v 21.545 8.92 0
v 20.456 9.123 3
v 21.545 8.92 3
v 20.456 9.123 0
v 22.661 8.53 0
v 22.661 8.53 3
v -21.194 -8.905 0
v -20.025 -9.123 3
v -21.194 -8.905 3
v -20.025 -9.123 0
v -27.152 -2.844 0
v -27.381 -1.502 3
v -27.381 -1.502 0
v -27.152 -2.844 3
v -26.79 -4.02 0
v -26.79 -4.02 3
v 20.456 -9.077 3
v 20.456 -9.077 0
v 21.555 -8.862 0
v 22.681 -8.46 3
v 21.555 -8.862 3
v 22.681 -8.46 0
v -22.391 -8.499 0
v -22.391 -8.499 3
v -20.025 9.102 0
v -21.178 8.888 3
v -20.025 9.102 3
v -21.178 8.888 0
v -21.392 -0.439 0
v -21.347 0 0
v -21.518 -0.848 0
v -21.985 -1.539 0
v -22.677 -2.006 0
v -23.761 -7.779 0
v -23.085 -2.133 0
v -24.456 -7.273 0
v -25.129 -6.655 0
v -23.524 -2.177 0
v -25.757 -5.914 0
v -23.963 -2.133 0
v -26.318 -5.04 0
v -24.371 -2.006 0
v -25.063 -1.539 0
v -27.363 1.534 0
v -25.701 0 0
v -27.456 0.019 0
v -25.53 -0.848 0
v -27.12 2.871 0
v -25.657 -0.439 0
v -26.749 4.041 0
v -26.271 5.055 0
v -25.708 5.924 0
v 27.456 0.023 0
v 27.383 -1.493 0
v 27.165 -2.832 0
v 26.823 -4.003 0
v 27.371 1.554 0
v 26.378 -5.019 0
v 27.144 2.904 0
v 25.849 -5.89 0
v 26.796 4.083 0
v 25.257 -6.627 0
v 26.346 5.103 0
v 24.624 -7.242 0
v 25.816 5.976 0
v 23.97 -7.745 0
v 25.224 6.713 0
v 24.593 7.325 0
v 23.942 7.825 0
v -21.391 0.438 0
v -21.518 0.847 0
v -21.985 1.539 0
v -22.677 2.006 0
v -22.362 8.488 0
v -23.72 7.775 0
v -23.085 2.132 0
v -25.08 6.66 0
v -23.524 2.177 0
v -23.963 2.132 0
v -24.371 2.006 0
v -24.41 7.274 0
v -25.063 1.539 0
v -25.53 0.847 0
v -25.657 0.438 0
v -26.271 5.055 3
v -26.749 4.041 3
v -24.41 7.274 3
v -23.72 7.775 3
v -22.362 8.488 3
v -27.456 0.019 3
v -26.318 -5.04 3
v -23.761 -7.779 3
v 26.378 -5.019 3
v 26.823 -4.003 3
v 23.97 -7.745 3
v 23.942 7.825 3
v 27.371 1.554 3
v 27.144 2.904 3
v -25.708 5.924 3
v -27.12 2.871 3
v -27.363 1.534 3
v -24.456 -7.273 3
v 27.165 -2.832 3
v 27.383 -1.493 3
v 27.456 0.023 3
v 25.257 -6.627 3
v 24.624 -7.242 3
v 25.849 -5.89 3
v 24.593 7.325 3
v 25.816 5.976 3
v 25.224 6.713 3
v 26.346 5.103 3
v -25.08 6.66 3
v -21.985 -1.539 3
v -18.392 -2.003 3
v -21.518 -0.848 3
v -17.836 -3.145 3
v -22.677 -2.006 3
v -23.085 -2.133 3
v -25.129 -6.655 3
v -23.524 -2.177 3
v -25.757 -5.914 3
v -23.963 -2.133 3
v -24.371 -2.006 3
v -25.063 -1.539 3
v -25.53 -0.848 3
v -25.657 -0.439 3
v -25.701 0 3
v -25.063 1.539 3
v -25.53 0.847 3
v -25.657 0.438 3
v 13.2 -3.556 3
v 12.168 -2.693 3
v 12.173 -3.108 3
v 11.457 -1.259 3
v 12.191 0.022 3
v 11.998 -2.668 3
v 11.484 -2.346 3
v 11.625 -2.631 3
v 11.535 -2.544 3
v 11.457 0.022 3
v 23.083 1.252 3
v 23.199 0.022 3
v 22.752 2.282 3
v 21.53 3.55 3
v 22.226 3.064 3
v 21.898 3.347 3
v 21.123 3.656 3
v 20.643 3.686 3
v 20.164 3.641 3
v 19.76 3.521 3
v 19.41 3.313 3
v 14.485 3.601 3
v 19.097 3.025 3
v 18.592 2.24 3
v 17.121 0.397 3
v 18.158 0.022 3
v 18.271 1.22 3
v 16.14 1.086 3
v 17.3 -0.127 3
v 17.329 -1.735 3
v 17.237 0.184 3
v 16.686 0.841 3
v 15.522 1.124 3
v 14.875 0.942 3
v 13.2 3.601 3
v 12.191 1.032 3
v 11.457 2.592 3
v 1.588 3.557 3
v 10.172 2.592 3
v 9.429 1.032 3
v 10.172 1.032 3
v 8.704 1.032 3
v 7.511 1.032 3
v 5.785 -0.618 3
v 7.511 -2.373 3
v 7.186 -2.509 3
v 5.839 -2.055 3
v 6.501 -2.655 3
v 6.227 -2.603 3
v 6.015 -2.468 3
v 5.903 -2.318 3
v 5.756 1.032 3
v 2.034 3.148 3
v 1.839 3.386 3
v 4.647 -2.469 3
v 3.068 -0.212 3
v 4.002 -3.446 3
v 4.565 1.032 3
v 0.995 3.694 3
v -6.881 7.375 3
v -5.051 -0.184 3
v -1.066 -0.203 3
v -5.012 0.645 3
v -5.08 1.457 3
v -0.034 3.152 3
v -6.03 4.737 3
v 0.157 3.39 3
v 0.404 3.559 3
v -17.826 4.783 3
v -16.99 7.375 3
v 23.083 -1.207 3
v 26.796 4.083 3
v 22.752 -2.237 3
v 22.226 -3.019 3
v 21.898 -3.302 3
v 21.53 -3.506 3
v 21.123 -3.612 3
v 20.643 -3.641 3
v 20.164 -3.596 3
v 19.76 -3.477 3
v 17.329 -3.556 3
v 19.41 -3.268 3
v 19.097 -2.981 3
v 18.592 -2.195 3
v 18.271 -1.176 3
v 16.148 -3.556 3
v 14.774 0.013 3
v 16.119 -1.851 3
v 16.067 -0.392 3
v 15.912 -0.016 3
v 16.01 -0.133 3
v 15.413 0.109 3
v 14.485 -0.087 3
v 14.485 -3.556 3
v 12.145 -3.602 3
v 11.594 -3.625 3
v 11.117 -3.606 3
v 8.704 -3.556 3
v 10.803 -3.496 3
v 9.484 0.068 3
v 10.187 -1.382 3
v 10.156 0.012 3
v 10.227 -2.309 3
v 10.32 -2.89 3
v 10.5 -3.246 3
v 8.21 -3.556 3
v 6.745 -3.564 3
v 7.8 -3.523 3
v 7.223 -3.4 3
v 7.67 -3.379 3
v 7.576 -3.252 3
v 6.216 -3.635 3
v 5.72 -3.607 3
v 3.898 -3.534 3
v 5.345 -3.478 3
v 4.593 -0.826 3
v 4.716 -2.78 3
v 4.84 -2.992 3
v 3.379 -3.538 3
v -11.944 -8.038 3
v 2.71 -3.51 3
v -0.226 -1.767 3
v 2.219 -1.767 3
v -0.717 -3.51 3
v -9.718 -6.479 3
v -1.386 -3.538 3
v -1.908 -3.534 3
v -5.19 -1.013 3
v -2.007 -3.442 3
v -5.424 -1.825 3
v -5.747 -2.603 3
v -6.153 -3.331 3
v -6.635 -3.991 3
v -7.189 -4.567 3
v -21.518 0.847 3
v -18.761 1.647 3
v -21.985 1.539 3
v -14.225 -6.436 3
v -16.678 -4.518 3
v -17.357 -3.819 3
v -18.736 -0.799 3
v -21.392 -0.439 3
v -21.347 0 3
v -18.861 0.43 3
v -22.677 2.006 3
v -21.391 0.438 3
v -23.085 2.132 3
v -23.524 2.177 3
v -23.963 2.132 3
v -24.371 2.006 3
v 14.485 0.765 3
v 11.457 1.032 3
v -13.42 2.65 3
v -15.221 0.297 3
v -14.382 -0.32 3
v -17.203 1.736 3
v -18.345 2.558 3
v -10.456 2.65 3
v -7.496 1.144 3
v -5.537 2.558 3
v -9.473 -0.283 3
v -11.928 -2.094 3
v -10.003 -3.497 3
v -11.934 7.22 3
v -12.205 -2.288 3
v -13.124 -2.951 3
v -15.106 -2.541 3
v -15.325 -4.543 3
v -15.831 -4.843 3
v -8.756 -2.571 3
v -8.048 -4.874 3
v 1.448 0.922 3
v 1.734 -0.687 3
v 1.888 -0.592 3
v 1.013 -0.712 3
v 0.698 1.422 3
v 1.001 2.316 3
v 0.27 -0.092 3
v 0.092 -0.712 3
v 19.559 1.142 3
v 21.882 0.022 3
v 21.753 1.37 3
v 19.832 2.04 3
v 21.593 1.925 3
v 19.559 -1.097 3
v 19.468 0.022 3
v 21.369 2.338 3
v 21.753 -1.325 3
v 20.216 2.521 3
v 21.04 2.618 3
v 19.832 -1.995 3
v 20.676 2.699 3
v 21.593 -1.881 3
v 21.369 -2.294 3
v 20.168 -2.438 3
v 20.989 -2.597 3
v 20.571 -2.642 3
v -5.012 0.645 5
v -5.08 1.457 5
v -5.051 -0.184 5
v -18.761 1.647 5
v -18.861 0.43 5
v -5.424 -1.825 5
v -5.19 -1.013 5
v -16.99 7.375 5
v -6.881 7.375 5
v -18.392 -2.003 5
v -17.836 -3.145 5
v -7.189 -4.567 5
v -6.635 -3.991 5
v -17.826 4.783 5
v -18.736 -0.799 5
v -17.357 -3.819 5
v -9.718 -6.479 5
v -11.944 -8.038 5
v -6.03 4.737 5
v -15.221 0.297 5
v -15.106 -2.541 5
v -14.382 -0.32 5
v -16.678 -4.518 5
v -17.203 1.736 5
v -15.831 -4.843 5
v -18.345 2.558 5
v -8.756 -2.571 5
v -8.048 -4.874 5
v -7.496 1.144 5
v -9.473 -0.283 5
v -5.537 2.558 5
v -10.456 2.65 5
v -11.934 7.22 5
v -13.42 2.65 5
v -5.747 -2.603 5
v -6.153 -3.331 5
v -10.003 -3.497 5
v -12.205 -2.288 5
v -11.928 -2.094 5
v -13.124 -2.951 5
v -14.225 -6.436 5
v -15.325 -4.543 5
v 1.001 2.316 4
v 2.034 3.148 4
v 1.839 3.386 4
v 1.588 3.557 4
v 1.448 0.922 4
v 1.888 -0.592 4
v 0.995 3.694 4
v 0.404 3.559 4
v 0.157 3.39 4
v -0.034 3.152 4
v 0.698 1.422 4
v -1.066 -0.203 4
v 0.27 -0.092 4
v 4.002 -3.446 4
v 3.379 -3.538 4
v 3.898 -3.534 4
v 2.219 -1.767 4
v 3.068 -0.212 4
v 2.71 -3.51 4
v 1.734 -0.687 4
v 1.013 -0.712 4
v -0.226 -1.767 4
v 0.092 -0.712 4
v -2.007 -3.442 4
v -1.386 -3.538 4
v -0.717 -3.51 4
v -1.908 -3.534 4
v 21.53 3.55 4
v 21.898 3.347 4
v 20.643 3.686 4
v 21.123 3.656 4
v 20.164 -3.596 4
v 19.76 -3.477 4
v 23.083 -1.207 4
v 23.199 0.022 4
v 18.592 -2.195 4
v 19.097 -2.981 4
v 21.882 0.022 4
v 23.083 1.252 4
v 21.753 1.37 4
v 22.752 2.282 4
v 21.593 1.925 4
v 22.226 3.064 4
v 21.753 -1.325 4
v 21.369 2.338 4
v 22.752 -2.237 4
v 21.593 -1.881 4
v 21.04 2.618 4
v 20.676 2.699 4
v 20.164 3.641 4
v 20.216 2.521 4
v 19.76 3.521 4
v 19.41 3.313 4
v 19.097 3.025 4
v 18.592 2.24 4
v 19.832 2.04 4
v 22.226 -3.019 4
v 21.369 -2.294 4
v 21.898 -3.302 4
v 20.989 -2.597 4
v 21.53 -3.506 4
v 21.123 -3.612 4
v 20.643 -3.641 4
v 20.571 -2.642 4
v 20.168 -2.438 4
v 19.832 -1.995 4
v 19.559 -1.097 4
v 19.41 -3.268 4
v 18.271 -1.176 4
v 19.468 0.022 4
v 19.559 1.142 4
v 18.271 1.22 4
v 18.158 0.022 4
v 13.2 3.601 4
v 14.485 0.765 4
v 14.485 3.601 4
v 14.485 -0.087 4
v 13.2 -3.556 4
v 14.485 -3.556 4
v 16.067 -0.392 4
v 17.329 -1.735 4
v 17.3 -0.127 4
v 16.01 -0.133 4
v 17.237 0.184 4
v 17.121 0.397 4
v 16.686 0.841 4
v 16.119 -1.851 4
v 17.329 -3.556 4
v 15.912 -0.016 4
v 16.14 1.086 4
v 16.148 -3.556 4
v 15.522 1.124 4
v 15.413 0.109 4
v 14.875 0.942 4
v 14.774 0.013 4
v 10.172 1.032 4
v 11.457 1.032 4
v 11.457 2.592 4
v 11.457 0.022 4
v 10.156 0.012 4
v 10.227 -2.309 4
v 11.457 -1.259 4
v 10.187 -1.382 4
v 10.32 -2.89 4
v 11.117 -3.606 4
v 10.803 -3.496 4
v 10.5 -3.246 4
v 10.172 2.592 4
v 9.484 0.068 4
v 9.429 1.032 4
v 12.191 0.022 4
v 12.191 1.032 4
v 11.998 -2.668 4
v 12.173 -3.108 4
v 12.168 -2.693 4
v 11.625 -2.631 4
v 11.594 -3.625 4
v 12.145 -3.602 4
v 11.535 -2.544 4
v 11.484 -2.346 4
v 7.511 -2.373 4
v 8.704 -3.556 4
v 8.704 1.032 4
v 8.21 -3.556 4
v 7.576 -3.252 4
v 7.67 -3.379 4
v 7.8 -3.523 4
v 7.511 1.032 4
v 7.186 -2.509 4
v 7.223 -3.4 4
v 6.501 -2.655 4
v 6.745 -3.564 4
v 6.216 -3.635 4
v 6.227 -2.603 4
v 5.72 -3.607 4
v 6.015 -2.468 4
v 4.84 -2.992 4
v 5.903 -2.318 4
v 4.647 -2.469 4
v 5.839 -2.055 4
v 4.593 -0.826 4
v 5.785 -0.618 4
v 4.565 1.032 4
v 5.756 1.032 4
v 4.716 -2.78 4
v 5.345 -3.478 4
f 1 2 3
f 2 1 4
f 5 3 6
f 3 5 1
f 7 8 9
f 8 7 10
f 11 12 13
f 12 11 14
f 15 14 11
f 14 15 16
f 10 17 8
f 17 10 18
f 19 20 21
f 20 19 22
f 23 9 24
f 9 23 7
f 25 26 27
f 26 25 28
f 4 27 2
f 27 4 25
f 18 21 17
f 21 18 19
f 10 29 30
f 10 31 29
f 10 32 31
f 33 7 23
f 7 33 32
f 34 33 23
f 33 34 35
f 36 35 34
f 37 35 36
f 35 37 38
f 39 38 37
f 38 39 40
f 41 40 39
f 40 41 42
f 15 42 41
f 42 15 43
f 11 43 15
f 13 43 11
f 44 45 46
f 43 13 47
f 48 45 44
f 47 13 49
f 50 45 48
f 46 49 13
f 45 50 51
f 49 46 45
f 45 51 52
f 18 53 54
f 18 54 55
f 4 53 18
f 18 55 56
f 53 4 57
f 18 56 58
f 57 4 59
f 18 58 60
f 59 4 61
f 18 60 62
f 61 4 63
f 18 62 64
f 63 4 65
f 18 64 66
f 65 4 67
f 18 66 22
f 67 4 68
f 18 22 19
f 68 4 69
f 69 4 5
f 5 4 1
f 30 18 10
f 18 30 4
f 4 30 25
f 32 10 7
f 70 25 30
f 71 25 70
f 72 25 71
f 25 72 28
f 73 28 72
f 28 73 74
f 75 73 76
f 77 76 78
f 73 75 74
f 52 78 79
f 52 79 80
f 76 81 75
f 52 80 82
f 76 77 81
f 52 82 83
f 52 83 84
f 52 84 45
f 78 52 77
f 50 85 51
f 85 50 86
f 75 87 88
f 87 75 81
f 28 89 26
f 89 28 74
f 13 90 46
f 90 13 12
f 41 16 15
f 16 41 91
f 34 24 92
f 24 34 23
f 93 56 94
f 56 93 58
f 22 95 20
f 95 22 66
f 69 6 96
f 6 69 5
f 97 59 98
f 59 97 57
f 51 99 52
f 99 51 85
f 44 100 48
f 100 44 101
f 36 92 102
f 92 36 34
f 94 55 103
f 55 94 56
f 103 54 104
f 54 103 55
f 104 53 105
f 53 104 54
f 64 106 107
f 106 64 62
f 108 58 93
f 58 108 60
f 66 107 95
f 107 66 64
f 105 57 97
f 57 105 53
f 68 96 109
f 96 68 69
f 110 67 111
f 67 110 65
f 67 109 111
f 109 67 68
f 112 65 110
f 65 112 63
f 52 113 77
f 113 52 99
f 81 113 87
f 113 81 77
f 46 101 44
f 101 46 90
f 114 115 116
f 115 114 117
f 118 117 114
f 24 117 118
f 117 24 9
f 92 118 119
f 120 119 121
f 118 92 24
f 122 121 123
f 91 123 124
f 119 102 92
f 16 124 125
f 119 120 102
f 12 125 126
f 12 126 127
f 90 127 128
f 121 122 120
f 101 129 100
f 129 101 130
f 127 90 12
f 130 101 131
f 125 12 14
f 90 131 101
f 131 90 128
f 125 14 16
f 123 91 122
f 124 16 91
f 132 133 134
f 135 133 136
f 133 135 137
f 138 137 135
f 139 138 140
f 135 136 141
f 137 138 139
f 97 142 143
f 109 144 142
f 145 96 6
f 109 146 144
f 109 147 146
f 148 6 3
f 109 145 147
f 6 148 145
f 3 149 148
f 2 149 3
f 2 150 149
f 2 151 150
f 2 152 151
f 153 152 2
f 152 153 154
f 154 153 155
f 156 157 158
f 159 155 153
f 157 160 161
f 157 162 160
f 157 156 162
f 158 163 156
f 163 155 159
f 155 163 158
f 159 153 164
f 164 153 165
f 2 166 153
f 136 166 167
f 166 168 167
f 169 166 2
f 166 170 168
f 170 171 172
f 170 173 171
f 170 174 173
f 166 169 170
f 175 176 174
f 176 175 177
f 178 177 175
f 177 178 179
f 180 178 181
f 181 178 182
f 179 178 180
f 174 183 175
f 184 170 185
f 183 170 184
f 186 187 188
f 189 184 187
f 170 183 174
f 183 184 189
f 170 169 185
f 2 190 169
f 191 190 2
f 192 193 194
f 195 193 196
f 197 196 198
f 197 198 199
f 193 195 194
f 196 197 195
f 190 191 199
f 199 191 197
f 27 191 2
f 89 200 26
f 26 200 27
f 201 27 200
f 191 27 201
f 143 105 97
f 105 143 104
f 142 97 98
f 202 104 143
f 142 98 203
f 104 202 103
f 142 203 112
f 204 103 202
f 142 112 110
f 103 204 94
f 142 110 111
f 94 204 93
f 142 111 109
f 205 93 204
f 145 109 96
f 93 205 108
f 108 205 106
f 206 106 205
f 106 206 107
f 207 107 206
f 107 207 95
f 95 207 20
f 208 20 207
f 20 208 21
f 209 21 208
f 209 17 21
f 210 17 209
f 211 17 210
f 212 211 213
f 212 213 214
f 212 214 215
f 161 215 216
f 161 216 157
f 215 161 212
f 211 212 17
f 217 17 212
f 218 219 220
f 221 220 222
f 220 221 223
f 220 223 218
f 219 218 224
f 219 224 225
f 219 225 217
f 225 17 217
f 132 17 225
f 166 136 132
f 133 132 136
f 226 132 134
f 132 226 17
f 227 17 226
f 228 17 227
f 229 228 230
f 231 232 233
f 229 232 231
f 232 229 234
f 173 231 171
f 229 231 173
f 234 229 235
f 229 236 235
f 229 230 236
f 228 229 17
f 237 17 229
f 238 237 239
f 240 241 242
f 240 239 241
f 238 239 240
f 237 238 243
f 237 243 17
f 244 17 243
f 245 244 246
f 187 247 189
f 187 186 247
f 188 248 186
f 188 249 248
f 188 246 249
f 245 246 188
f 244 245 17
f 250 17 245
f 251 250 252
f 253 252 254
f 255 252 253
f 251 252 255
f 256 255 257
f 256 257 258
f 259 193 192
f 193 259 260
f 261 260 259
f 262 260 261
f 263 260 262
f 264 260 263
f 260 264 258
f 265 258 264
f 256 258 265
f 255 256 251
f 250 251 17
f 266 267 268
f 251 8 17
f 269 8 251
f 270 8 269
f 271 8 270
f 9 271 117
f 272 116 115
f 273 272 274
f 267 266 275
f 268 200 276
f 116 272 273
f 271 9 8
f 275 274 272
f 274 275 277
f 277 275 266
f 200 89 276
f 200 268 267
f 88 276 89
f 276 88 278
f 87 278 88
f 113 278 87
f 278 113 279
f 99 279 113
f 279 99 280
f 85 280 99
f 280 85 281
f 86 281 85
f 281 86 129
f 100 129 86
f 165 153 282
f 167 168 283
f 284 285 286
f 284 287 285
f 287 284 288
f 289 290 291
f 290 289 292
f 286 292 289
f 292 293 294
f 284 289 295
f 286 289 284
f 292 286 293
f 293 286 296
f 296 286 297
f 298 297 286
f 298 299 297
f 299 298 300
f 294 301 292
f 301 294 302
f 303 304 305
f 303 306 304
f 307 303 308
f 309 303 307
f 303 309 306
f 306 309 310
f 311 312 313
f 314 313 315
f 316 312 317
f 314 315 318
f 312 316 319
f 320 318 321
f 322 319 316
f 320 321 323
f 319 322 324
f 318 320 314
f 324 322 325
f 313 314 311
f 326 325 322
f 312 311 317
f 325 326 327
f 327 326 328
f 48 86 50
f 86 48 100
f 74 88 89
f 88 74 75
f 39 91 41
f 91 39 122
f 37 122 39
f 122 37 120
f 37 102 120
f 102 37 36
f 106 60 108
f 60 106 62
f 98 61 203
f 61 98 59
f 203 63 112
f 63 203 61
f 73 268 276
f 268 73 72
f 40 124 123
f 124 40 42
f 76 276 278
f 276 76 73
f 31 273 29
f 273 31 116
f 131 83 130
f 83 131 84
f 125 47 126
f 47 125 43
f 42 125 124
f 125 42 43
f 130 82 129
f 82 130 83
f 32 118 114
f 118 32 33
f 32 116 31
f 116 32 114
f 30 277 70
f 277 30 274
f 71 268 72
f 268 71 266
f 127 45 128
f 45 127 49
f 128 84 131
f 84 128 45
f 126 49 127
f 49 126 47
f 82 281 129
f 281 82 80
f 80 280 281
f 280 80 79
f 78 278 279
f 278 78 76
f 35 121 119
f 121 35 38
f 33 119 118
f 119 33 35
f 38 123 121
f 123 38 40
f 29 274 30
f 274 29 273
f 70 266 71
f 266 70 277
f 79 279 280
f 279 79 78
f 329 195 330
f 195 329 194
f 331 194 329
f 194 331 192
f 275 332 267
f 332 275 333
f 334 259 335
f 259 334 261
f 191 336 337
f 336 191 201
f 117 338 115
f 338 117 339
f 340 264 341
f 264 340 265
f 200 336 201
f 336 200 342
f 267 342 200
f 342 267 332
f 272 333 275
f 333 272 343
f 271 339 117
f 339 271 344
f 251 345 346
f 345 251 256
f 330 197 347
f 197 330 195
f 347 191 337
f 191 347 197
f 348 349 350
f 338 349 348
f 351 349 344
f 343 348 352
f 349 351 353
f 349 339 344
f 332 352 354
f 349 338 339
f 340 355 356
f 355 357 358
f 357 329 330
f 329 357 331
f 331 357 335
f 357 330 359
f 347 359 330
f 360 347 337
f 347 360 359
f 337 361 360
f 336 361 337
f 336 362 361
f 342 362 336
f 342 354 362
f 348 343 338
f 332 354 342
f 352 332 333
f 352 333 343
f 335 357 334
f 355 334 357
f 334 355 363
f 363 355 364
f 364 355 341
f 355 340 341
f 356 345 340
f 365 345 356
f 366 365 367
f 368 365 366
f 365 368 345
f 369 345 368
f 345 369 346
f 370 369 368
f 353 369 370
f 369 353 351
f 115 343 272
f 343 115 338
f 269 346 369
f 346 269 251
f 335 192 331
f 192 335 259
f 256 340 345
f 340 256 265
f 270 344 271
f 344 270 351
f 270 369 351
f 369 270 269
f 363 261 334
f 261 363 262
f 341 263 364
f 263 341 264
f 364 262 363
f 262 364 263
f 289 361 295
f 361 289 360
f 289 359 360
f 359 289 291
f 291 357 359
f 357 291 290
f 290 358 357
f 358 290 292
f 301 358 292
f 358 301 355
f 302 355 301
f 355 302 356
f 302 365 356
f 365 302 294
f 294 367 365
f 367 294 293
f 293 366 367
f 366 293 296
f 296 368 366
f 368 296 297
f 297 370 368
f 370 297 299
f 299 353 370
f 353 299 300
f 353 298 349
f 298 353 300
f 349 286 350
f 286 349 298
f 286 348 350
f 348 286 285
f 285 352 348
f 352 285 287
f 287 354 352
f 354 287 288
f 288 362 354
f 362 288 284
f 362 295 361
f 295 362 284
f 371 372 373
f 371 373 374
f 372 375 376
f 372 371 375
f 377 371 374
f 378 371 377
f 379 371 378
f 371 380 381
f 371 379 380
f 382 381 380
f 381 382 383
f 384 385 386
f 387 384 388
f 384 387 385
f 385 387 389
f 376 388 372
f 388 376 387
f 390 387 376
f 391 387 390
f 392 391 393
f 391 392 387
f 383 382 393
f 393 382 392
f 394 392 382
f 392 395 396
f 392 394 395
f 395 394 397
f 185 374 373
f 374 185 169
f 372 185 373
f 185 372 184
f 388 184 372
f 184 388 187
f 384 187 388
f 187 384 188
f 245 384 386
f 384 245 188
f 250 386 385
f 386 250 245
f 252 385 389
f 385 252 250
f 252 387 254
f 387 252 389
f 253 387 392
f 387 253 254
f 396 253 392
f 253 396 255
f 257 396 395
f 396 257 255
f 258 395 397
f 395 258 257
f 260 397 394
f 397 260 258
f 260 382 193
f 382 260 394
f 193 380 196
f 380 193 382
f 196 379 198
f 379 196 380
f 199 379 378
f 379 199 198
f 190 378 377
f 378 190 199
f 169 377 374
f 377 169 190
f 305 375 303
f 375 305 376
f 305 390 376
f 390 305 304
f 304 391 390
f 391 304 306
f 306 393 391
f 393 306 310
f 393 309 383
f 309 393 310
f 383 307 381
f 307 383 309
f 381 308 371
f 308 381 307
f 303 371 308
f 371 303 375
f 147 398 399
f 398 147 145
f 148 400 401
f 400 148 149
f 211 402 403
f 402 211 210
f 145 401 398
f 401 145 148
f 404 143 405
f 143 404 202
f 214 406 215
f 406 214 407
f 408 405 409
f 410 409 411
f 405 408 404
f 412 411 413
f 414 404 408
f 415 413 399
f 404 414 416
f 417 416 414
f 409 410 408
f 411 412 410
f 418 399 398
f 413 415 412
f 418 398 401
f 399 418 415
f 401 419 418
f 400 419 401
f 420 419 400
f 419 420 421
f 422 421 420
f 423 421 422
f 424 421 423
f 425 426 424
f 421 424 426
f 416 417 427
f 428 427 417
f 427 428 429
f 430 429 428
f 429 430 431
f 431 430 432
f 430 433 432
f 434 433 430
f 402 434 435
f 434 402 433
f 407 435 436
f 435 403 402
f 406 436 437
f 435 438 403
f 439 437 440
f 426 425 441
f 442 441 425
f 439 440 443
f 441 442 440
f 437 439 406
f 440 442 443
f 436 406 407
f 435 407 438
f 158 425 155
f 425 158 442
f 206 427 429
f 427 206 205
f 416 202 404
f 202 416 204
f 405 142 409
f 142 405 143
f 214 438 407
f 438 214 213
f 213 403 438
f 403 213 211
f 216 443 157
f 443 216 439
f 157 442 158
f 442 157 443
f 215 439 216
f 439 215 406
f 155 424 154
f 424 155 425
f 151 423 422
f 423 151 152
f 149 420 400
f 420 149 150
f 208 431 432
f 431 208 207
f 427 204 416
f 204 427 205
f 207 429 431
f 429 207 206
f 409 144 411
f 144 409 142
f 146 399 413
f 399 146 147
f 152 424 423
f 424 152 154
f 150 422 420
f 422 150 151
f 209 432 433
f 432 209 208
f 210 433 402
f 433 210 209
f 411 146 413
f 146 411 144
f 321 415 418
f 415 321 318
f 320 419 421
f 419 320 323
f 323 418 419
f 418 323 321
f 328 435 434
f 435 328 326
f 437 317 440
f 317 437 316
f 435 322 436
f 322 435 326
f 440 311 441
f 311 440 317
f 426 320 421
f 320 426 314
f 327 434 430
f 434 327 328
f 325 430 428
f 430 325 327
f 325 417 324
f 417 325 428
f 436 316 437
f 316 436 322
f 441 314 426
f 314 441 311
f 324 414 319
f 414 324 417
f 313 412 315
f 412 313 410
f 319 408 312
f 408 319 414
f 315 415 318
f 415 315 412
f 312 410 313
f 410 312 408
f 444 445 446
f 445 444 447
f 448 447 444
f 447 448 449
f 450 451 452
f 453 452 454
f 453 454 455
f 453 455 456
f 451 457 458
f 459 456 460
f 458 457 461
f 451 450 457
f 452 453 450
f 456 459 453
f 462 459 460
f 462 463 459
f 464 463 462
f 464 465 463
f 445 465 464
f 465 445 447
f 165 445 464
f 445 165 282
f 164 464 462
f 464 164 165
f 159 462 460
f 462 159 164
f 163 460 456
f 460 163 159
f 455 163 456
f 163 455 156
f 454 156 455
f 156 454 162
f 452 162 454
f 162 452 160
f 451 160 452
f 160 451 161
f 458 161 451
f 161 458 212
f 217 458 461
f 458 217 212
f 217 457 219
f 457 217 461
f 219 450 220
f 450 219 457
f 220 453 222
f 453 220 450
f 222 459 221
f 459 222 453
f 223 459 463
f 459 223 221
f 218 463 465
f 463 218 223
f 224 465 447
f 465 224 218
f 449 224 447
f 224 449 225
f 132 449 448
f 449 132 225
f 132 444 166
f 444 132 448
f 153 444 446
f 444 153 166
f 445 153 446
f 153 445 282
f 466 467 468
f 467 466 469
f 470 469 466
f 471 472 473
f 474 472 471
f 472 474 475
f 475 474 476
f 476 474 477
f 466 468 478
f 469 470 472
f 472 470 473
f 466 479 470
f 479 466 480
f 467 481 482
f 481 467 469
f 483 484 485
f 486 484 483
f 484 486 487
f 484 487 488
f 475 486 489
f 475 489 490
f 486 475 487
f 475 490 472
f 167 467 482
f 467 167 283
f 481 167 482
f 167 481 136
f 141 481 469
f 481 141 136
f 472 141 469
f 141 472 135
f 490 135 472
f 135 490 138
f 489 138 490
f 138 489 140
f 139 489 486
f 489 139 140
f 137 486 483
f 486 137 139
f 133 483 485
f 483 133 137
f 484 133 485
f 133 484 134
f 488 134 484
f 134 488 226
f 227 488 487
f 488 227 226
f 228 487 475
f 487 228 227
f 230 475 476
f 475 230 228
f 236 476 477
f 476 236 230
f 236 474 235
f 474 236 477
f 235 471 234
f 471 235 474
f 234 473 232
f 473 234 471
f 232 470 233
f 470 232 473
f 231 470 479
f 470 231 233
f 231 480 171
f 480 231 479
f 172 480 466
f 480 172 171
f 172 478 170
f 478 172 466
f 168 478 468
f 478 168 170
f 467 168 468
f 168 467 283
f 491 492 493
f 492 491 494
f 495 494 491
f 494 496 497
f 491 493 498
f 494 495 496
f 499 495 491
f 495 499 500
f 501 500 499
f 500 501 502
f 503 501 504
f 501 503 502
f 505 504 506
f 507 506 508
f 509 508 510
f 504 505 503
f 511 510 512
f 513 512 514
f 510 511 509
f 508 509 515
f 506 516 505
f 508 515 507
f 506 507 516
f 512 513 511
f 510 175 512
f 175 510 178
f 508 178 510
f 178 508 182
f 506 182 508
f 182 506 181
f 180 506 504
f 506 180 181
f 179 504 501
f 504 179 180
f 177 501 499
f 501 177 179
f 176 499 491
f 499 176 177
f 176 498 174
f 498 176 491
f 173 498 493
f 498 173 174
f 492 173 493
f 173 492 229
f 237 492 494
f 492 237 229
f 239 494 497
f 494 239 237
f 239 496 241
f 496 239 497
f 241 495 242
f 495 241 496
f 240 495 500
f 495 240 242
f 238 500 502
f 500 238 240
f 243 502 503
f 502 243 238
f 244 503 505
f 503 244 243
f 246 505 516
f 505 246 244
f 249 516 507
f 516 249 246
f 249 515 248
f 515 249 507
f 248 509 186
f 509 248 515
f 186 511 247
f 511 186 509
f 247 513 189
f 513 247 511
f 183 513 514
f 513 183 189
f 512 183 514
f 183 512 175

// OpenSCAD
// Change these variables to  to customize the back.
// The available fonts can be found on Help -> Font list
name = "";
fontSize = 7;
font = "Verdana"; // ...or "Arial:style=Bold", from the Font list

render();

module render()
{
    difference() {
      keychain(3);
      text_engraving();
    }
}

module text_engraving()
{
rotate([0, 180, 0])
translate([-2.5, 0, -1])  
  linear_extrude(1)
    text(name, halign="center", valign="center", size=fontSize, font=font);
}

fudge = 0.1;
module poly_base_3_mm(h)
{
  scale([25.4/90, -25.4/90, 1]) union()
  {
    difference()
    {
       linear_extrude(height=h)
         polygon([[72.482863,-32.324762],[76.339241,-31.607586],[80.294833,-30.224366],[84.833244,-27.725390],[87.140823,-25.956087],[89.377887,-23.786157],[91.472362,-21.175039],[93.352176,-18.082168],[94.945253,-14.466983],[96.179523,-10.288921],[96.982910,-5.507420],[97.283341,-0.081916],[97.026504,5.291197],[96.255474,10.033813],[95.043486,14.185097],[93.463777,17.784216],[91.589583,20.870334],[89.494139,23.482617],[87.250681,25.660231],[84.932445,27.442341],[80.364584,29.976710],[76.376442,31.399049],[72.482863,32.160932],[-70.955278,32.324762],[-75.096623,31.551461],[-79.337365,30.115605],[-84.192872,27.563185],[-86.656175,25.770506],[-89.039183,23.581379],[-91.263903,20.956701],[-93.252339,17.857369],[-94.926496,14.244280],[-96.208378,10.078332],[-97.019992,5.320423],[-97.283341,-0.068550],[-96.955462,-5.435693],[-96.095953,-10.172437],[-94.781089,-14.317987],[-93.087143,-17.911549],[-91.090390,-20.992327],[-88.867104,-23.599527],[-86.493560,-25.772353],[-84.046031,-27.550012],[-79.234117,-30.076644],[-75.041558,-31.493064],[-70.955278,-32.249831]]);
       translate([0, 0, -fudge])
         linear_extrude(height=h+2*fudge)
           polygon([[-83.353172,-7.712488],[-84.907629,-7.555719],[-86.355443,-7.106226],[-88.807080,-5.453139],[-90.459966,-3.001365],[-90.909339,-1.553515],[-91.065980,0.000955],[-90.909228,1.555325],[-90.459782,3.003070],[-88.806854,5.454637],[-86.355288,7.107563],[-84.907543,7.557008],[-83.353172,7.713760],[-81.798704,7.557119],[-80.350854,7.107745],[-77.899081,5.454860],[-76.245993,3.003223],[-75.796500,1.555411],[-75.639730,0.000955],[-75.796389,-1.553600],[-76.245809,-3.001519],[-77.898855,-5.453363],[-80.350699,-7.106409],[-81.798617,-7.555830],[-83.353172,-7.712488]]);
    }
  }
}

module poly_logo_5_mm(h)
{
  scale([25.4/90, -25.4/90, 1]) union()
  {
    difference()
    {
       linear_extrude(height=h)
         polygon([[-60.199048,-26.133009],[-63.164535,-16.948254],[-66.476737,-5.834343],[-66.831778,-1.521859],[-66.387099,2.832062],[-65.167920,7.097015],[-63.199463,11.142593],[-61.502308,13.532469],[-59.094529,16.008363],[-50.404688,22.806419],[-42.322943,28.482120],[-34.435565,22.958271],[-25.474278,16.182016],[-23.511185,14.140889],[-21.800284,11.801447],[-20.362444,9.223286],[-19.218535,6.465999],[-18.389426,3.589181],[-17.895987,0.652428],[-17.759088,-2.284666],[-17.999597,-5.162507],[-21.366410,-16.785692],[-24.381429,-26.133009],[-42.290557,-26.133009],[-60.199051,-26.133009]]);
       translate([0, 0, -fudge])
         linear_extrude(height=h+2*fudge)
           polygon([[-42.287381,-25.581186],[-39.668610,-17.484835],[-37.049836,-9.389119],[-28.334986,-9.226557],[-19.619502,-9.063995],[-26.558869,-4.052511],[-33.566818,1.001521],[-31.024881,9.108662],[-28.517869,17.269150],[-35.443265,12.392289],[-42.265792,7.418908],[-43.246243,8.105986],[-46.503199,10.456783],[-54.300434,16.096944],[-56.094357,17.158660],[-53.527024,9.003251],[-50.959685,1.132969],[-53.933426,-1.051462],[-60.954711,-6.149945],[-65.002250,-9.063995],[-56.277239,-9.226557],[-47.552232,-9.389119],[-44.919491,-17.484835],[-42.287381,-25.581186]]);
    }
  }
}

module poly_text_4_mm(h)
{
  scale([25.4/90, -25.4/90, 1]) union()
  {
    difference()
    {
       linear_extrude(height=h)
         polygon([[3.526195,-13.089099],[1.432825,-12.611925],[0.554933,-12.011647],[-0.121925,-11.170107],[-3.778933,0.721053],[-7.112726,12.196918],[-6.762149,12.522905],[-4.909884,12.534742],[-2.540669,12.438222],[-1.670075,9.349543],[-0.799477,6.260865],[3.530643,6.260865],[7.861396,6.260865],[8.731991,9.349543],[9.602588,12.438222],[11.971803,12.534742],[13.811023,12.522569],[14.181630,12.209618],[10.869428,0.749628],[7.205432,-11.154865],[6.514944,-11.999241],[5.627330,-12.603120],[3.526195,-13.089099]]);
       translate([0, 0, -fudge])
         linear_extrude(height=h+2*fudge)
           polygon([[3.548420,-8.207157],[5.131495,-3.266792],[6.688537,2.097755],[6.143200,2.434391],[3.588427,2.521941],[0.325758,2.521941],[0.957588,0.327350],[2.474623,-5.037197],[3.548420,-8.207157]]);
    }
    difference()
    {
       linear_extrude(height=h)
         polygon([[73.145297,-13.060521],[71.448749,-12.899846],[70.015978,-12.477583],[68.777152,-11.738770],[67.667185,-10.719350],[65.878604,-7.936473],[64.739784,-4.324518],[64.340277,-0.079055],[64.739784,4.166409],[65.878604,7.778365],[67.667185,10.561245],[68.777152,11.580666],[70.015978,12.319480],[71.448839,12.741664],[73.145499,12.902267],[74.845392,12.797036],[76.287953,12.421716],[77.592023,11.701164],[78.754728,10.697637],[80.615962,7.926440],[81.791490,4.277687],[82.201147,-0.079055],[81.791490,-4.435796],[80.615962,-8.084546],[78.754728,-10.855741],[77.592023,-11.859267],[76.287953,-12.579819],[74.845281,-12.955211],[73.145297,-13.060521]]);
       translate([0, 0, -fudge])
         linear_extrude(height=h+2*fudge)
           polygon([[73.262140,-9.564166],[74.549426,-9.278054],[75.715809,-8.285895],[76.511085,-6.822347],[77.079138,-4.854659],[77.533581,-0.079050],[77.079138,4.696558],[76.511085,6.664245],[75.715809,8.127792],[74.369886,9.203506],[72.889435,9.361648],[71.460874,8.638381],[70.270618,7.069868],[69.304014,3.887932],[68.981813,-0.078733],[69.304014,-4.045399],[70.270618,-7.227337],[71.630282,-8.933451],[73.262140,-9.564166]]);
    }
    linear_extrude(height=h)
      polygon([[46.772149,-12.758894],[46.772149,-0.079055],[46.772149,12.600787],[49.048017,12.600787],[51.323886,12.600787],[51.323886,6.455182],[51.323886,0.309572],[52.348153,-0.047303],[54.614406,-0.386900],[56.382358,0.056837],[56.727922,0.472092],[56.930906,1.389109],[57.115158,6.559322],[57.216760,12.600787],[59.309746,12.600787],[61.402732,12.600787],[61.402732,6.146567],[61.298390,0.448726],[61.077461,-0.650627],[60.663582,-1.404950],[59.125294,-2.978767],[57.187777,-3.849505],[54.998683,-3.981365],[52.705663,-3.338550],[51.323886,-2.711796],[51.323886,-7.735343],[51.323886,-12.758894],[49.048017,-12.758894],[46.772149,-12.758894]]);
    linear_extrude(height=h)
      polygon([[36.043054,-9.182529],[36.043054,-6.418974],[36.043054,-3.655419],[34.725411,-3.655419],[33.408404,-3.655419],[33.506195,-1.948518],[33.604623,-0.241617],[34.795263,-0.142555],[35.985266,-0.042859],[36.095760,4.896872],[36.237967,8.179760],[36.566858,10.240376],[37.205672,11.501560],[38.277645,12.386154],[39.391895,12.777535],[41.082477,12.843997],[43.033222,12.763350],[43.132918,11.013902],[43.115756,9.540931],[42.511879,9.453053],[41.192333,9.321606],[40.872690,9.014044],[40.692427,8.311702],[40.594791,4.461254],[40.594791,-0.079055],[41.895287,-0.079055],[43.195784,-0.079055],[43.195784,-1.867237],[43.195784,-3.655419],[41.895287,-3.655419],[40.594791,-3.655419],[40.594791,-6.418974],[40.594791,-9.182529],[38.318922,-9.182529],[36.043054,-9.182529]]);
    linear_extrude(height=h)
      polygon([[16.173655,-3.655419],[16.273351,2.928346],[16.467122,8.749176],[16.710754,9.851521],[17.149661,10.601148],[18.937844,12.325193],[20.268700,12.781085],[22.023681,12.878527],[23.899941,12.630087],[25.594632,12.048330],[26.844525,11.524199],[27.176436,11.973399],[27.639016,12.482786],[29.090984,12.600787],[30.841069,12.600787],[30.841069,4.472685],[30.841069,-3.655419],[28.727762,-3.655419],[26.614456,-3.655419],[26.614456,2.375889],[26.614456,8.407828],[25.461917,8.889164],[23.034816,9.406084],[22.062884,9.221733],[21.312774,8.744383],[20.915464,8.211797],[20.689406,7.281275],[20.498059,2.188562],[20.396458,-3.655419],[18.285056,-3.655419],[16.173655,-3.655419]]);
  }
}

module keychain(h)
{
poly_base_3_mm(3);
poly_logo_5_mm(5);
poly_text_4_mm(4);
}
